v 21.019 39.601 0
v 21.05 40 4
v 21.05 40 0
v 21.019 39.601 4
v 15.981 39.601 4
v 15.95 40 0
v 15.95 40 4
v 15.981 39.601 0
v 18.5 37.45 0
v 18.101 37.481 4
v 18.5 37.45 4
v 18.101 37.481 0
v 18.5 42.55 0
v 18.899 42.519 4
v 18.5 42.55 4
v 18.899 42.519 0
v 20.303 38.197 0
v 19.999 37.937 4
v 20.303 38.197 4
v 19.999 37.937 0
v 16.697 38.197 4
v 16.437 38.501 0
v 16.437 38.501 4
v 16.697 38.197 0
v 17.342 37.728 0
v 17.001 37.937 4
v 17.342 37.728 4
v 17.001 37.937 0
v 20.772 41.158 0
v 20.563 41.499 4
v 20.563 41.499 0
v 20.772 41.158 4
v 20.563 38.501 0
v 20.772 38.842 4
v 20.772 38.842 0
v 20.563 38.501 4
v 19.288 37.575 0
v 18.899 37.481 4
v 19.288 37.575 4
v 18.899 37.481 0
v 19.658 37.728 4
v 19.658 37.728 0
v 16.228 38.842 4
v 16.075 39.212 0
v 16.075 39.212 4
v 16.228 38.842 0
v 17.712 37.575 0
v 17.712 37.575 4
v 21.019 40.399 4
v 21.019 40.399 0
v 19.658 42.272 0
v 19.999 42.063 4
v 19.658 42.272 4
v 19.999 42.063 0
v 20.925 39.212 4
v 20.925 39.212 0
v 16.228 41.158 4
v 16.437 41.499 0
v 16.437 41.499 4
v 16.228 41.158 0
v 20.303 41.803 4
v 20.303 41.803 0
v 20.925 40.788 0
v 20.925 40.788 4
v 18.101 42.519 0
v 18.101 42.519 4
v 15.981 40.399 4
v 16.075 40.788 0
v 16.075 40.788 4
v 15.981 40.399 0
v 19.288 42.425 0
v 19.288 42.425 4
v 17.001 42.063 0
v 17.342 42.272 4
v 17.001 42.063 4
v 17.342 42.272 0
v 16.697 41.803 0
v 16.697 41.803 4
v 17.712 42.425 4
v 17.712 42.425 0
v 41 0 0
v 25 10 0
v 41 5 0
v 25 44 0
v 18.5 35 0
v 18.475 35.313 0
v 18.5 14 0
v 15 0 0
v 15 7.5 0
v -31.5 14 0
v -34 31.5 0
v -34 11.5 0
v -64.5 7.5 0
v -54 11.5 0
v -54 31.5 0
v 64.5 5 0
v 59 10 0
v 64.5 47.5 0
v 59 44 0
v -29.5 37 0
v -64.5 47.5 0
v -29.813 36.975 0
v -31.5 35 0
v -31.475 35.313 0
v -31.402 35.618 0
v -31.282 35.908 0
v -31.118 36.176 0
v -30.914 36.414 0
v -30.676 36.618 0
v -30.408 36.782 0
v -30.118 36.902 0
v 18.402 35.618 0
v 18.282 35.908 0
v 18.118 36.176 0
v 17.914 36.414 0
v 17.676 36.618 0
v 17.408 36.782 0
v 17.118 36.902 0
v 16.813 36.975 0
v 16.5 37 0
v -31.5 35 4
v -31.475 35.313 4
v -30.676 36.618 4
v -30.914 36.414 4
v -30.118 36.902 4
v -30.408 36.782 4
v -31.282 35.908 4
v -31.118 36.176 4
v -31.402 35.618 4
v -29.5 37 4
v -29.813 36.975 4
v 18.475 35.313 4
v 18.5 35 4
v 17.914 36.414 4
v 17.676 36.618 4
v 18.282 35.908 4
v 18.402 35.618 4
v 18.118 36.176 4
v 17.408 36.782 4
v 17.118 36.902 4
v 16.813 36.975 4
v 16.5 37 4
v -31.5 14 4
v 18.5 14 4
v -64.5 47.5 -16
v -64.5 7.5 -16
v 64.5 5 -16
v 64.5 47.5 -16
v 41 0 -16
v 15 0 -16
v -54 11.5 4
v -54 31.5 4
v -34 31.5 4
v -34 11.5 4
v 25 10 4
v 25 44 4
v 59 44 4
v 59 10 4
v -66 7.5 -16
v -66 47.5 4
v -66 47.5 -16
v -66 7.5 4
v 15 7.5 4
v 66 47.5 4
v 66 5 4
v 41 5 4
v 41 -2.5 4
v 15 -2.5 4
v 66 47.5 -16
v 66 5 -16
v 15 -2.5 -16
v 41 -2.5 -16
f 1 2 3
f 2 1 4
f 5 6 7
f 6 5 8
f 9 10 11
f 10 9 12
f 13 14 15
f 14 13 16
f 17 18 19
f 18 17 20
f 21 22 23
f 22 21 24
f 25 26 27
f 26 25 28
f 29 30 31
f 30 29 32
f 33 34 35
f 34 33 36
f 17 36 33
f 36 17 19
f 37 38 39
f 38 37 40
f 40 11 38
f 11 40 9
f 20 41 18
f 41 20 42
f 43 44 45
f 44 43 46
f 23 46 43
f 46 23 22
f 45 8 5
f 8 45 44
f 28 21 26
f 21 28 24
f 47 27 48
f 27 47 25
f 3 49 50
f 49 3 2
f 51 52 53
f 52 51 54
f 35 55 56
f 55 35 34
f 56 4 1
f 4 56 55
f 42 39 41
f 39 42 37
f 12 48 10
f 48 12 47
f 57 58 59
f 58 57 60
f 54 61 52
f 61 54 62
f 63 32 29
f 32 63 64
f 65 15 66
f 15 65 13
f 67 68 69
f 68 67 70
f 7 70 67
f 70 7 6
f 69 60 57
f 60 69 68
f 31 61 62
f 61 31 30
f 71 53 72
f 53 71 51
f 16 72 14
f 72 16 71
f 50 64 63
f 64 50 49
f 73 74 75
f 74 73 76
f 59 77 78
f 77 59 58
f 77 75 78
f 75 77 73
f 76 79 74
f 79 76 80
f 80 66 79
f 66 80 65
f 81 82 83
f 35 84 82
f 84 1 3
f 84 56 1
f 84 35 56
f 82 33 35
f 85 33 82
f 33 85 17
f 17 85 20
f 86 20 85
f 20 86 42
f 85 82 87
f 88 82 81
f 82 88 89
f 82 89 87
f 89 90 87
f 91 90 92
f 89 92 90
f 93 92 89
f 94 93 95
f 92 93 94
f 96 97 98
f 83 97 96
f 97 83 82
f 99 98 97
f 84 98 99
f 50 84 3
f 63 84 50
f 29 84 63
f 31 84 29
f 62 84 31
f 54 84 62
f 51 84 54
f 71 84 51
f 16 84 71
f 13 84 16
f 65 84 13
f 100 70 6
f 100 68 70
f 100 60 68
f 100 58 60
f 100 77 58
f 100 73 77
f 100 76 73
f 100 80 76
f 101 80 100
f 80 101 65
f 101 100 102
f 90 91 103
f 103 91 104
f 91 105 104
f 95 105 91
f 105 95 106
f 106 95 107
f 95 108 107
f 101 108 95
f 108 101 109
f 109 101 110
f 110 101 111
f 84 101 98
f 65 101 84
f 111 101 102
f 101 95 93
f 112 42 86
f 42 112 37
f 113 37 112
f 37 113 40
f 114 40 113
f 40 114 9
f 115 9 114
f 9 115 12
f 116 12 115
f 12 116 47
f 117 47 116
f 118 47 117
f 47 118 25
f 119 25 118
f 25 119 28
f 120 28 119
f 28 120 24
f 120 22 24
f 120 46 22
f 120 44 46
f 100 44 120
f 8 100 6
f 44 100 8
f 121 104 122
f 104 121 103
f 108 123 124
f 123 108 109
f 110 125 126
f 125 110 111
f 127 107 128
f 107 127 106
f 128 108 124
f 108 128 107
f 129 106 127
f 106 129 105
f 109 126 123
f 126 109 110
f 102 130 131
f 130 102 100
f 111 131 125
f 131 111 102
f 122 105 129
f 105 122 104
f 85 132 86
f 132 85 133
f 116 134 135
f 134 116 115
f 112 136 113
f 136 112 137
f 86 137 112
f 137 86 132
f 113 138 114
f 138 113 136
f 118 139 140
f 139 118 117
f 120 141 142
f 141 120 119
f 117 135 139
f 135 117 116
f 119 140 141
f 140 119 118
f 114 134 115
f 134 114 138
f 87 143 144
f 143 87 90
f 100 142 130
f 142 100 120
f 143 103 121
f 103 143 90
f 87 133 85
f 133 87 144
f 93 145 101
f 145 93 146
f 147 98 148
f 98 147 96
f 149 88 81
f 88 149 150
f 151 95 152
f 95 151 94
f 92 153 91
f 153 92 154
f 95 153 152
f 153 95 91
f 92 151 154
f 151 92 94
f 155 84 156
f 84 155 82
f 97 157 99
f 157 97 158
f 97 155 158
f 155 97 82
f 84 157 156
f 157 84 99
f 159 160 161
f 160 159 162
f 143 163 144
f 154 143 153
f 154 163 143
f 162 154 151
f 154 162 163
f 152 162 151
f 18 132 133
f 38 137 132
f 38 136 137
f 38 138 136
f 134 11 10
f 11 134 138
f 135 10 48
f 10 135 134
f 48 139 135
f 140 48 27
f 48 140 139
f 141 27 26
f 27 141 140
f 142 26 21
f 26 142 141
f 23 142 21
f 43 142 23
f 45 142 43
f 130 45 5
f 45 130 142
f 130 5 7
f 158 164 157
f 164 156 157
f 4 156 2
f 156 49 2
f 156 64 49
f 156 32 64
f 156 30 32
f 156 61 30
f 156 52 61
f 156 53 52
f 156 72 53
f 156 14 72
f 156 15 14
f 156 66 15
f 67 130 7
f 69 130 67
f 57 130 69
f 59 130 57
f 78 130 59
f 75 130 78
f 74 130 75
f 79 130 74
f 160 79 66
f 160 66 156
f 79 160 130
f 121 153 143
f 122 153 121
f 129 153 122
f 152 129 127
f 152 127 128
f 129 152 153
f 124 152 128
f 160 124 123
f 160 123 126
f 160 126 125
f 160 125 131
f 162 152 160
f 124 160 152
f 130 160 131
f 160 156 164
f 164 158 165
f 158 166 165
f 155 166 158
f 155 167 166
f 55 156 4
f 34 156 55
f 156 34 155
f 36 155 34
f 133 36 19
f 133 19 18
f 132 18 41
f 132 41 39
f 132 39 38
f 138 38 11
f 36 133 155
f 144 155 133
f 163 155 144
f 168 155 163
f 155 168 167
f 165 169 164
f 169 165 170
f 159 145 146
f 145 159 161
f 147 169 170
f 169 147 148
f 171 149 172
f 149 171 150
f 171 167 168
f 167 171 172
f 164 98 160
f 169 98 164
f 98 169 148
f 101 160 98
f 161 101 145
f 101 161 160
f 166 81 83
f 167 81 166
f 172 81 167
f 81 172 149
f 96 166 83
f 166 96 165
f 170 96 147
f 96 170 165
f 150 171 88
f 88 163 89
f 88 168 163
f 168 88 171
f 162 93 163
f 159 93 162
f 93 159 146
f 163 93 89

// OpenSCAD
use <MCAD/boxes.scad>
module photodiode() { rotate([180,0,0]) union() {
translate([0,0,-5])cylinder(r=2.55,h=5);
translate([0,0,-5.5])cylinder(r=3.05,h=1);
} }

module meter() { translate([-64.5,0,0]) {
translate([0,0,-40]) cube([129,141,40]);
translate([10.5,11.5,0]) cube([20,20,10]); //button
translate([33,14,0]) cube([50,17,6]); //display
translate([58,25.5,2.5]) roundedBox([50,23,5],2,1); //display+lower
translate([89.5,10,0]) cube([34,34,6]); //thingie?
translate([83,40,0]) cylinder(r=2,h=4); //kWh LED
} }

difference() {
    translate([0,22.5,-6])cube([132,50,20],center=true);
    translate([18.5,40,-0.25])  photodiode();
    translate([56,0,0])#cube([30,10,50],center=true);
    translate([-30,0,0])#cube([90,15,50],center=true);
#meter();
}
$fn=40;
